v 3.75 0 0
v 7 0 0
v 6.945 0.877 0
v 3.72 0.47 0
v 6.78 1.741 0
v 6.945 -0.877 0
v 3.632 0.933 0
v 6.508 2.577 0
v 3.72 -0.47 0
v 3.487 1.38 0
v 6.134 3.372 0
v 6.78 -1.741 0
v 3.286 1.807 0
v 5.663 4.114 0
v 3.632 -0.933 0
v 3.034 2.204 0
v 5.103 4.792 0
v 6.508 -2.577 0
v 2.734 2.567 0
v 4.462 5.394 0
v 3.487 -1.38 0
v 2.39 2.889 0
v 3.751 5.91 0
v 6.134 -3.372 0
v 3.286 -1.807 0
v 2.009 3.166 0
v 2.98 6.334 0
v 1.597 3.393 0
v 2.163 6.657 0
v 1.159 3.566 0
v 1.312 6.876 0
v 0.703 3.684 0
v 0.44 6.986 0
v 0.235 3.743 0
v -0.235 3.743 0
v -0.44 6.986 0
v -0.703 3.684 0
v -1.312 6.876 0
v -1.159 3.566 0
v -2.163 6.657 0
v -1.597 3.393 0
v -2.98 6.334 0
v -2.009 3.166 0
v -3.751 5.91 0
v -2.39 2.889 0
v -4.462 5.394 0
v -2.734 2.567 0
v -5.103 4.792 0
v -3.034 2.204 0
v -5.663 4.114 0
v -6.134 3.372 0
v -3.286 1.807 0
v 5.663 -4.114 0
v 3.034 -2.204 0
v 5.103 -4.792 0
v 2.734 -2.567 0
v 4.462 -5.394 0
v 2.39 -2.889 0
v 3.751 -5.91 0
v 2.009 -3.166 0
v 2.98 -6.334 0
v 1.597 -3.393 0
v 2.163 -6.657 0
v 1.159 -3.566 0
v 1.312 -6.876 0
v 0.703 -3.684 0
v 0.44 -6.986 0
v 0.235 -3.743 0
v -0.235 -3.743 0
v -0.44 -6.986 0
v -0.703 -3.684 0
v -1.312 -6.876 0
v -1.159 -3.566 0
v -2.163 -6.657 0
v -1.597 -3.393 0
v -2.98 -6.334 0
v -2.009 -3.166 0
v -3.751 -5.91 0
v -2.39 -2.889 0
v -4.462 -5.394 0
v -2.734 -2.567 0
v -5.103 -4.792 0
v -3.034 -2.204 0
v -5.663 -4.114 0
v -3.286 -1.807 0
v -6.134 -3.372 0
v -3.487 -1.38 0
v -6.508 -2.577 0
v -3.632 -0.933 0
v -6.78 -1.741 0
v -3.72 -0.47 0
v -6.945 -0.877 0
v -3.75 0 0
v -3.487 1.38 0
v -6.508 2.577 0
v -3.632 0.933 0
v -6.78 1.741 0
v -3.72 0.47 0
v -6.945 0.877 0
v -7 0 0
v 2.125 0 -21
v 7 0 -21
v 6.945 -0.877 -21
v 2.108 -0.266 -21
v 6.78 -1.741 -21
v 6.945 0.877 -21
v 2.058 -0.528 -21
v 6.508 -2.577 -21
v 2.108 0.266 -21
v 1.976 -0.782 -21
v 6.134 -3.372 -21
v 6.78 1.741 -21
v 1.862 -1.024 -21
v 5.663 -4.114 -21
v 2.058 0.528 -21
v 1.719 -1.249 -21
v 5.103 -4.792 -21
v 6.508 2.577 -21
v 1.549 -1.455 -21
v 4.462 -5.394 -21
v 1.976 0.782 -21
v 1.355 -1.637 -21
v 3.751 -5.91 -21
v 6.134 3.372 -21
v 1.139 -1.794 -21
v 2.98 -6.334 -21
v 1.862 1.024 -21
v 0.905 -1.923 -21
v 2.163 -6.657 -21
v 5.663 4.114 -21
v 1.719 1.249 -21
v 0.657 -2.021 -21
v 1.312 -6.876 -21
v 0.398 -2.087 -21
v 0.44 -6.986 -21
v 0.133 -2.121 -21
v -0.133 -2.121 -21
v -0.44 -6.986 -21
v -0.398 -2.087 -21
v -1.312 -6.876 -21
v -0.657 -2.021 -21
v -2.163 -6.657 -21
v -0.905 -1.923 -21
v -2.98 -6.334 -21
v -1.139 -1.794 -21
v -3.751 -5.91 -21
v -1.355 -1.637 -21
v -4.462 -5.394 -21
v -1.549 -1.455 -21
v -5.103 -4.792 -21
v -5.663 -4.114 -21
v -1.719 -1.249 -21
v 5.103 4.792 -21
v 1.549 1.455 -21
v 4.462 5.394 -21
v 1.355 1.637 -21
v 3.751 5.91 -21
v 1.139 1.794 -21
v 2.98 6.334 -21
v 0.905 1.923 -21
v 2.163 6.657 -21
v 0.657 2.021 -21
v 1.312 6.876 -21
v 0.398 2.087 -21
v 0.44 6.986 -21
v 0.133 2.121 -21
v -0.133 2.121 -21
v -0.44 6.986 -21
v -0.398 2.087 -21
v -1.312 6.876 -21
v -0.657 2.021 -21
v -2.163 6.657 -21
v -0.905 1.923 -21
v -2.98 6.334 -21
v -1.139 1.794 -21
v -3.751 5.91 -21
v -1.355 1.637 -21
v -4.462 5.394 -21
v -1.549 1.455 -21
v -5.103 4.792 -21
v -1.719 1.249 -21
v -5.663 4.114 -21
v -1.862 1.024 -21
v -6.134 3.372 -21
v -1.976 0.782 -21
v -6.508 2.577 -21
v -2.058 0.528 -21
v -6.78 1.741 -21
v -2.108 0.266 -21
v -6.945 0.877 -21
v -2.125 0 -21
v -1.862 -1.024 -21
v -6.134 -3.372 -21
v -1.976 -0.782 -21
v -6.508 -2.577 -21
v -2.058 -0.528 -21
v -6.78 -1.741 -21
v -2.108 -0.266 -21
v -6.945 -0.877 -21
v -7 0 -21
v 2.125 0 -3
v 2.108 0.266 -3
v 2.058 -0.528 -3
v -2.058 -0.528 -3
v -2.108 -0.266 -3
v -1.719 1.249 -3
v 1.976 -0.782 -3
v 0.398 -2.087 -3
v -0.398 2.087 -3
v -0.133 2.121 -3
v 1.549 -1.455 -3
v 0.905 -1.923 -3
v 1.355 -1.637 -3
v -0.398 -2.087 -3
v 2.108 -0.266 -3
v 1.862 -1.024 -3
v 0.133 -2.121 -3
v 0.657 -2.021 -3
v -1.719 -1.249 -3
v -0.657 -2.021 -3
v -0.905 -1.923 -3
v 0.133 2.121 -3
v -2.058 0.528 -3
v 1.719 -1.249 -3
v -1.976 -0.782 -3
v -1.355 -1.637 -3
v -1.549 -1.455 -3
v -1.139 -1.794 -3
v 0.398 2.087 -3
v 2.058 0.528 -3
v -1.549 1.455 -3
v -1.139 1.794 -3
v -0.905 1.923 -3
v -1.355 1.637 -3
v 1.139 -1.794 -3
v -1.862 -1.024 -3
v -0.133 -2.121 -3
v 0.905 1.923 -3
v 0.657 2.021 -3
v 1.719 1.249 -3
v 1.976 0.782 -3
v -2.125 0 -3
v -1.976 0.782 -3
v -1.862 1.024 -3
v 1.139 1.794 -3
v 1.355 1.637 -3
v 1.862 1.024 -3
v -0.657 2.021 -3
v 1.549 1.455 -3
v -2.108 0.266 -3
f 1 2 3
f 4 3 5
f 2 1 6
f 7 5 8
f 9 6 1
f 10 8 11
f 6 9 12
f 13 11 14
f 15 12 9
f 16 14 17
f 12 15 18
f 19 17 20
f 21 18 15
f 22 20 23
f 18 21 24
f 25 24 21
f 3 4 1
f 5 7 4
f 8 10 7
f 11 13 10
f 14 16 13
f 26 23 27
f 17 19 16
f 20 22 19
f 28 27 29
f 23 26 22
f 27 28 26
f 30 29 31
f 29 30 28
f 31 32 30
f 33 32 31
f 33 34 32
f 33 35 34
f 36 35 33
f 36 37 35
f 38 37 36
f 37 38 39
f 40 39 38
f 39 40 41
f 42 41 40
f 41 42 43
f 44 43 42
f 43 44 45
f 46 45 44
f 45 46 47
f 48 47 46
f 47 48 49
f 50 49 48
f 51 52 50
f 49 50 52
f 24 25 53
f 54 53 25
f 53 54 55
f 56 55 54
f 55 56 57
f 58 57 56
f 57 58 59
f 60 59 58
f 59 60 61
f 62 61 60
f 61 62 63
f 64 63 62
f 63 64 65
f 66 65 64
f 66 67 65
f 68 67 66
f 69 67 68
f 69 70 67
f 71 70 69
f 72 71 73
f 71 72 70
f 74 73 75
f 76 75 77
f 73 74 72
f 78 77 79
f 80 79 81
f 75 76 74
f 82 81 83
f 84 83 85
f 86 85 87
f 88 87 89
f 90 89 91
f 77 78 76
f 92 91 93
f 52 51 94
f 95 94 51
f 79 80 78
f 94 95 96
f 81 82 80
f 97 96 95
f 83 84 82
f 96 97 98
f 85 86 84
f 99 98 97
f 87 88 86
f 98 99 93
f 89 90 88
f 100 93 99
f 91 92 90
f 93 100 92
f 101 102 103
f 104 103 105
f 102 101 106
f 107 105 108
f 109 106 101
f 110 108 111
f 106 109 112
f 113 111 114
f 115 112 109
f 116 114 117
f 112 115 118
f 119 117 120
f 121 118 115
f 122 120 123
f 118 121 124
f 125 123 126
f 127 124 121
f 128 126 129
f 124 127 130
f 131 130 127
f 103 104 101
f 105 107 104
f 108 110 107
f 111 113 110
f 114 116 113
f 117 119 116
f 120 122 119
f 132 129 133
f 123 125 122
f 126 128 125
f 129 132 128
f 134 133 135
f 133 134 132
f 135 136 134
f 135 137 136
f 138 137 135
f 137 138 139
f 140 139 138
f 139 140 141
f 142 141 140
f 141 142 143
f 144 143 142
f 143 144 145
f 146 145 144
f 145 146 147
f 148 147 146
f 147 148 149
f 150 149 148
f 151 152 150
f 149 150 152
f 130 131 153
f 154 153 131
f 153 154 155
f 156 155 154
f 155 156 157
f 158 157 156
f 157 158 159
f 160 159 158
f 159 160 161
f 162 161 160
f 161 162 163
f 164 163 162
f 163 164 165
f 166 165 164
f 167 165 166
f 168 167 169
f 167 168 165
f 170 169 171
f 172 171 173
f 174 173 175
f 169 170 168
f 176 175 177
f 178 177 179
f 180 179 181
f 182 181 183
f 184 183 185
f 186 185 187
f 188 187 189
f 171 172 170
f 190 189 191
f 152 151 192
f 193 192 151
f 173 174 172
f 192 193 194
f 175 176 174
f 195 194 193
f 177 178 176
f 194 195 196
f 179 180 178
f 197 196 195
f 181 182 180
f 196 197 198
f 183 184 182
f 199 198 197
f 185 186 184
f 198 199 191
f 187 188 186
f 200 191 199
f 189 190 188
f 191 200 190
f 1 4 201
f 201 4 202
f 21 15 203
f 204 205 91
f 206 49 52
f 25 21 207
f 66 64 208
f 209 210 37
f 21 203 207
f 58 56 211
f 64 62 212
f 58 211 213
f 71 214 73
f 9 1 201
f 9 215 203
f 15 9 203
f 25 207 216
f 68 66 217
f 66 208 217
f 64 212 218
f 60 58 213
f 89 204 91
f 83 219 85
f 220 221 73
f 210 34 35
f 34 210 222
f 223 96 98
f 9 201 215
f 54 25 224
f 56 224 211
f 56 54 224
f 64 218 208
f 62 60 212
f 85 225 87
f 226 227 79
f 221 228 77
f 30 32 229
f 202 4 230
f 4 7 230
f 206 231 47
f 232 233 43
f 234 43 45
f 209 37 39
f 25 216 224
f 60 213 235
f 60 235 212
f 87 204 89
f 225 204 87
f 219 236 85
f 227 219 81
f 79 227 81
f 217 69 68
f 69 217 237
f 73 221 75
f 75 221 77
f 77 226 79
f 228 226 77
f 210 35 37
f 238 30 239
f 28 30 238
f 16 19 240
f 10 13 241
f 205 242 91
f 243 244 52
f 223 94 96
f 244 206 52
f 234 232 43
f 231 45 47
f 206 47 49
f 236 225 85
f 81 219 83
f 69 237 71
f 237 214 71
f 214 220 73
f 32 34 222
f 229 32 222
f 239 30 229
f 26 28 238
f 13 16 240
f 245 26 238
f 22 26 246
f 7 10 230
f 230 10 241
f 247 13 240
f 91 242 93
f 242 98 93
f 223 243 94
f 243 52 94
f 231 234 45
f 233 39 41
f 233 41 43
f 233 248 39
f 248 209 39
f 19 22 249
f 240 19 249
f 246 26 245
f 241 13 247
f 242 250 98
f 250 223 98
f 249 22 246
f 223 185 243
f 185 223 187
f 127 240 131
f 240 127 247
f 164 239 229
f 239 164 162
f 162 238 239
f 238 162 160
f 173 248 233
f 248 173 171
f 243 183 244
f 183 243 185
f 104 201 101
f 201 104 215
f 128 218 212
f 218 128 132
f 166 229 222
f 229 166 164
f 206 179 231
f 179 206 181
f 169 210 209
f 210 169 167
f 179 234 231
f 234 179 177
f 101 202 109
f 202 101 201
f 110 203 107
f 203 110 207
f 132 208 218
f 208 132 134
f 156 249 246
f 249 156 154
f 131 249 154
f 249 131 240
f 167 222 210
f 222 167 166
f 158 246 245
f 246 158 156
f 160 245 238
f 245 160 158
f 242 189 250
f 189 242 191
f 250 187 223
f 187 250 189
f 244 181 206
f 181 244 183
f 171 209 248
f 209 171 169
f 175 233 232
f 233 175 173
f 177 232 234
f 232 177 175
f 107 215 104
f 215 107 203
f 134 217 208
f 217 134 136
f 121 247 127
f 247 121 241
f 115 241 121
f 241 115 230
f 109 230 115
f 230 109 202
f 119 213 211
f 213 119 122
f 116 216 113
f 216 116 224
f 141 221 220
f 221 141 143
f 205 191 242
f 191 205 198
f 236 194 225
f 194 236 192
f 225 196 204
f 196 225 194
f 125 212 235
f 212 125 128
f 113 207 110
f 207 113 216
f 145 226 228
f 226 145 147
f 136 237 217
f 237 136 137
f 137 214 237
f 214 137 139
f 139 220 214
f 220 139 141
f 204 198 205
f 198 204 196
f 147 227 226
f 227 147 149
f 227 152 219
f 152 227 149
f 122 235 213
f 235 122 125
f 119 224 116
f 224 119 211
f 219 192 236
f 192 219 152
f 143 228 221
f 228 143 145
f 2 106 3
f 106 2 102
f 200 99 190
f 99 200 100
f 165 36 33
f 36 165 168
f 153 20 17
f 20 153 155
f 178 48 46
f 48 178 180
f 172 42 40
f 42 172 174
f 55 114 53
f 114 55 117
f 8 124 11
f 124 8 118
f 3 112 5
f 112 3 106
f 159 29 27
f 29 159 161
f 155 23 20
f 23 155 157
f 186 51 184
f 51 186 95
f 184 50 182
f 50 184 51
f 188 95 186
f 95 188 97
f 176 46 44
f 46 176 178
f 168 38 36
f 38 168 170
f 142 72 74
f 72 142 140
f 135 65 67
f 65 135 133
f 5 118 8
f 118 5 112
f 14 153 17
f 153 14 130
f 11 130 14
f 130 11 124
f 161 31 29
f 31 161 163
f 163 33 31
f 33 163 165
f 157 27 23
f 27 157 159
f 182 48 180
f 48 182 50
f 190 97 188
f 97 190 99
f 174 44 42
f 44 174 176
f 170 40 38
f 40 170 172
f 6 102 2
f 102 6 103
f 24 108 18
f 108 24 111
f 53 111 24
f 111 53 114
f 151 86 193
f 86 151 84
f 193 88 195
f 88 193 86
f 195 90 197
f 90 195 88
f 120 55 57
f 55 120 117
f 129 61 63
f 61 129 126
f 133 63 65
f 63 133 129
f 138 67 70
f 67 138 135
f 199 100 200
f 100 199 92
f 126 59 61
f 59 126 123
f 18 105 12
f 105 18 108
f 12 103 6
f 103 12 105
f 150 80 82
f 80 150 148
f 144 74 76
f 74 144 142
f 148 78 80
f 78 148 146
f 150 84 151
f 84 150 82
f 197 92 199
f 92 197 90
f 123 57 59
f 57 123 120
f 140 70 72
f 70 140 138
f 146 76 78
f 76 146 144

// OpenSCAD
$fn = 50;


difference() {
	union() {
		translate(v = [0, 0, -21.0000000000]) {
			cylinder(h = 21, r = 7.0000000000);
		}
		cylinder(h = 0, r = 17.0000000000);
	}
	union() {
		translate(v = [0, 0, 0]) {
			rotate(a = [0, 0, 0]) {
				difference() {
					union() {
						#translate(v = [0, 0, -21.0000000000]) {
							cylinder(h = 21, r = 2.0000000000);
						}
						#translate(v = [0, 0, -3]) {
							cylinder(h = 3, r = 7.0000000000, r1 = 2.1250000000, r2 = 3.7500000000);
						}
						#translate(v = [0, 0, -21.0000000000]) {
							cylinder(h = 21, r = 2.1250000000);
						}
						#translate(v = [0, 0, -21.0000000000]) {
							cylinder(h = 21, r = 2.0000000000);
						}
					}
					union();
				}
			}
		}
	}
}
